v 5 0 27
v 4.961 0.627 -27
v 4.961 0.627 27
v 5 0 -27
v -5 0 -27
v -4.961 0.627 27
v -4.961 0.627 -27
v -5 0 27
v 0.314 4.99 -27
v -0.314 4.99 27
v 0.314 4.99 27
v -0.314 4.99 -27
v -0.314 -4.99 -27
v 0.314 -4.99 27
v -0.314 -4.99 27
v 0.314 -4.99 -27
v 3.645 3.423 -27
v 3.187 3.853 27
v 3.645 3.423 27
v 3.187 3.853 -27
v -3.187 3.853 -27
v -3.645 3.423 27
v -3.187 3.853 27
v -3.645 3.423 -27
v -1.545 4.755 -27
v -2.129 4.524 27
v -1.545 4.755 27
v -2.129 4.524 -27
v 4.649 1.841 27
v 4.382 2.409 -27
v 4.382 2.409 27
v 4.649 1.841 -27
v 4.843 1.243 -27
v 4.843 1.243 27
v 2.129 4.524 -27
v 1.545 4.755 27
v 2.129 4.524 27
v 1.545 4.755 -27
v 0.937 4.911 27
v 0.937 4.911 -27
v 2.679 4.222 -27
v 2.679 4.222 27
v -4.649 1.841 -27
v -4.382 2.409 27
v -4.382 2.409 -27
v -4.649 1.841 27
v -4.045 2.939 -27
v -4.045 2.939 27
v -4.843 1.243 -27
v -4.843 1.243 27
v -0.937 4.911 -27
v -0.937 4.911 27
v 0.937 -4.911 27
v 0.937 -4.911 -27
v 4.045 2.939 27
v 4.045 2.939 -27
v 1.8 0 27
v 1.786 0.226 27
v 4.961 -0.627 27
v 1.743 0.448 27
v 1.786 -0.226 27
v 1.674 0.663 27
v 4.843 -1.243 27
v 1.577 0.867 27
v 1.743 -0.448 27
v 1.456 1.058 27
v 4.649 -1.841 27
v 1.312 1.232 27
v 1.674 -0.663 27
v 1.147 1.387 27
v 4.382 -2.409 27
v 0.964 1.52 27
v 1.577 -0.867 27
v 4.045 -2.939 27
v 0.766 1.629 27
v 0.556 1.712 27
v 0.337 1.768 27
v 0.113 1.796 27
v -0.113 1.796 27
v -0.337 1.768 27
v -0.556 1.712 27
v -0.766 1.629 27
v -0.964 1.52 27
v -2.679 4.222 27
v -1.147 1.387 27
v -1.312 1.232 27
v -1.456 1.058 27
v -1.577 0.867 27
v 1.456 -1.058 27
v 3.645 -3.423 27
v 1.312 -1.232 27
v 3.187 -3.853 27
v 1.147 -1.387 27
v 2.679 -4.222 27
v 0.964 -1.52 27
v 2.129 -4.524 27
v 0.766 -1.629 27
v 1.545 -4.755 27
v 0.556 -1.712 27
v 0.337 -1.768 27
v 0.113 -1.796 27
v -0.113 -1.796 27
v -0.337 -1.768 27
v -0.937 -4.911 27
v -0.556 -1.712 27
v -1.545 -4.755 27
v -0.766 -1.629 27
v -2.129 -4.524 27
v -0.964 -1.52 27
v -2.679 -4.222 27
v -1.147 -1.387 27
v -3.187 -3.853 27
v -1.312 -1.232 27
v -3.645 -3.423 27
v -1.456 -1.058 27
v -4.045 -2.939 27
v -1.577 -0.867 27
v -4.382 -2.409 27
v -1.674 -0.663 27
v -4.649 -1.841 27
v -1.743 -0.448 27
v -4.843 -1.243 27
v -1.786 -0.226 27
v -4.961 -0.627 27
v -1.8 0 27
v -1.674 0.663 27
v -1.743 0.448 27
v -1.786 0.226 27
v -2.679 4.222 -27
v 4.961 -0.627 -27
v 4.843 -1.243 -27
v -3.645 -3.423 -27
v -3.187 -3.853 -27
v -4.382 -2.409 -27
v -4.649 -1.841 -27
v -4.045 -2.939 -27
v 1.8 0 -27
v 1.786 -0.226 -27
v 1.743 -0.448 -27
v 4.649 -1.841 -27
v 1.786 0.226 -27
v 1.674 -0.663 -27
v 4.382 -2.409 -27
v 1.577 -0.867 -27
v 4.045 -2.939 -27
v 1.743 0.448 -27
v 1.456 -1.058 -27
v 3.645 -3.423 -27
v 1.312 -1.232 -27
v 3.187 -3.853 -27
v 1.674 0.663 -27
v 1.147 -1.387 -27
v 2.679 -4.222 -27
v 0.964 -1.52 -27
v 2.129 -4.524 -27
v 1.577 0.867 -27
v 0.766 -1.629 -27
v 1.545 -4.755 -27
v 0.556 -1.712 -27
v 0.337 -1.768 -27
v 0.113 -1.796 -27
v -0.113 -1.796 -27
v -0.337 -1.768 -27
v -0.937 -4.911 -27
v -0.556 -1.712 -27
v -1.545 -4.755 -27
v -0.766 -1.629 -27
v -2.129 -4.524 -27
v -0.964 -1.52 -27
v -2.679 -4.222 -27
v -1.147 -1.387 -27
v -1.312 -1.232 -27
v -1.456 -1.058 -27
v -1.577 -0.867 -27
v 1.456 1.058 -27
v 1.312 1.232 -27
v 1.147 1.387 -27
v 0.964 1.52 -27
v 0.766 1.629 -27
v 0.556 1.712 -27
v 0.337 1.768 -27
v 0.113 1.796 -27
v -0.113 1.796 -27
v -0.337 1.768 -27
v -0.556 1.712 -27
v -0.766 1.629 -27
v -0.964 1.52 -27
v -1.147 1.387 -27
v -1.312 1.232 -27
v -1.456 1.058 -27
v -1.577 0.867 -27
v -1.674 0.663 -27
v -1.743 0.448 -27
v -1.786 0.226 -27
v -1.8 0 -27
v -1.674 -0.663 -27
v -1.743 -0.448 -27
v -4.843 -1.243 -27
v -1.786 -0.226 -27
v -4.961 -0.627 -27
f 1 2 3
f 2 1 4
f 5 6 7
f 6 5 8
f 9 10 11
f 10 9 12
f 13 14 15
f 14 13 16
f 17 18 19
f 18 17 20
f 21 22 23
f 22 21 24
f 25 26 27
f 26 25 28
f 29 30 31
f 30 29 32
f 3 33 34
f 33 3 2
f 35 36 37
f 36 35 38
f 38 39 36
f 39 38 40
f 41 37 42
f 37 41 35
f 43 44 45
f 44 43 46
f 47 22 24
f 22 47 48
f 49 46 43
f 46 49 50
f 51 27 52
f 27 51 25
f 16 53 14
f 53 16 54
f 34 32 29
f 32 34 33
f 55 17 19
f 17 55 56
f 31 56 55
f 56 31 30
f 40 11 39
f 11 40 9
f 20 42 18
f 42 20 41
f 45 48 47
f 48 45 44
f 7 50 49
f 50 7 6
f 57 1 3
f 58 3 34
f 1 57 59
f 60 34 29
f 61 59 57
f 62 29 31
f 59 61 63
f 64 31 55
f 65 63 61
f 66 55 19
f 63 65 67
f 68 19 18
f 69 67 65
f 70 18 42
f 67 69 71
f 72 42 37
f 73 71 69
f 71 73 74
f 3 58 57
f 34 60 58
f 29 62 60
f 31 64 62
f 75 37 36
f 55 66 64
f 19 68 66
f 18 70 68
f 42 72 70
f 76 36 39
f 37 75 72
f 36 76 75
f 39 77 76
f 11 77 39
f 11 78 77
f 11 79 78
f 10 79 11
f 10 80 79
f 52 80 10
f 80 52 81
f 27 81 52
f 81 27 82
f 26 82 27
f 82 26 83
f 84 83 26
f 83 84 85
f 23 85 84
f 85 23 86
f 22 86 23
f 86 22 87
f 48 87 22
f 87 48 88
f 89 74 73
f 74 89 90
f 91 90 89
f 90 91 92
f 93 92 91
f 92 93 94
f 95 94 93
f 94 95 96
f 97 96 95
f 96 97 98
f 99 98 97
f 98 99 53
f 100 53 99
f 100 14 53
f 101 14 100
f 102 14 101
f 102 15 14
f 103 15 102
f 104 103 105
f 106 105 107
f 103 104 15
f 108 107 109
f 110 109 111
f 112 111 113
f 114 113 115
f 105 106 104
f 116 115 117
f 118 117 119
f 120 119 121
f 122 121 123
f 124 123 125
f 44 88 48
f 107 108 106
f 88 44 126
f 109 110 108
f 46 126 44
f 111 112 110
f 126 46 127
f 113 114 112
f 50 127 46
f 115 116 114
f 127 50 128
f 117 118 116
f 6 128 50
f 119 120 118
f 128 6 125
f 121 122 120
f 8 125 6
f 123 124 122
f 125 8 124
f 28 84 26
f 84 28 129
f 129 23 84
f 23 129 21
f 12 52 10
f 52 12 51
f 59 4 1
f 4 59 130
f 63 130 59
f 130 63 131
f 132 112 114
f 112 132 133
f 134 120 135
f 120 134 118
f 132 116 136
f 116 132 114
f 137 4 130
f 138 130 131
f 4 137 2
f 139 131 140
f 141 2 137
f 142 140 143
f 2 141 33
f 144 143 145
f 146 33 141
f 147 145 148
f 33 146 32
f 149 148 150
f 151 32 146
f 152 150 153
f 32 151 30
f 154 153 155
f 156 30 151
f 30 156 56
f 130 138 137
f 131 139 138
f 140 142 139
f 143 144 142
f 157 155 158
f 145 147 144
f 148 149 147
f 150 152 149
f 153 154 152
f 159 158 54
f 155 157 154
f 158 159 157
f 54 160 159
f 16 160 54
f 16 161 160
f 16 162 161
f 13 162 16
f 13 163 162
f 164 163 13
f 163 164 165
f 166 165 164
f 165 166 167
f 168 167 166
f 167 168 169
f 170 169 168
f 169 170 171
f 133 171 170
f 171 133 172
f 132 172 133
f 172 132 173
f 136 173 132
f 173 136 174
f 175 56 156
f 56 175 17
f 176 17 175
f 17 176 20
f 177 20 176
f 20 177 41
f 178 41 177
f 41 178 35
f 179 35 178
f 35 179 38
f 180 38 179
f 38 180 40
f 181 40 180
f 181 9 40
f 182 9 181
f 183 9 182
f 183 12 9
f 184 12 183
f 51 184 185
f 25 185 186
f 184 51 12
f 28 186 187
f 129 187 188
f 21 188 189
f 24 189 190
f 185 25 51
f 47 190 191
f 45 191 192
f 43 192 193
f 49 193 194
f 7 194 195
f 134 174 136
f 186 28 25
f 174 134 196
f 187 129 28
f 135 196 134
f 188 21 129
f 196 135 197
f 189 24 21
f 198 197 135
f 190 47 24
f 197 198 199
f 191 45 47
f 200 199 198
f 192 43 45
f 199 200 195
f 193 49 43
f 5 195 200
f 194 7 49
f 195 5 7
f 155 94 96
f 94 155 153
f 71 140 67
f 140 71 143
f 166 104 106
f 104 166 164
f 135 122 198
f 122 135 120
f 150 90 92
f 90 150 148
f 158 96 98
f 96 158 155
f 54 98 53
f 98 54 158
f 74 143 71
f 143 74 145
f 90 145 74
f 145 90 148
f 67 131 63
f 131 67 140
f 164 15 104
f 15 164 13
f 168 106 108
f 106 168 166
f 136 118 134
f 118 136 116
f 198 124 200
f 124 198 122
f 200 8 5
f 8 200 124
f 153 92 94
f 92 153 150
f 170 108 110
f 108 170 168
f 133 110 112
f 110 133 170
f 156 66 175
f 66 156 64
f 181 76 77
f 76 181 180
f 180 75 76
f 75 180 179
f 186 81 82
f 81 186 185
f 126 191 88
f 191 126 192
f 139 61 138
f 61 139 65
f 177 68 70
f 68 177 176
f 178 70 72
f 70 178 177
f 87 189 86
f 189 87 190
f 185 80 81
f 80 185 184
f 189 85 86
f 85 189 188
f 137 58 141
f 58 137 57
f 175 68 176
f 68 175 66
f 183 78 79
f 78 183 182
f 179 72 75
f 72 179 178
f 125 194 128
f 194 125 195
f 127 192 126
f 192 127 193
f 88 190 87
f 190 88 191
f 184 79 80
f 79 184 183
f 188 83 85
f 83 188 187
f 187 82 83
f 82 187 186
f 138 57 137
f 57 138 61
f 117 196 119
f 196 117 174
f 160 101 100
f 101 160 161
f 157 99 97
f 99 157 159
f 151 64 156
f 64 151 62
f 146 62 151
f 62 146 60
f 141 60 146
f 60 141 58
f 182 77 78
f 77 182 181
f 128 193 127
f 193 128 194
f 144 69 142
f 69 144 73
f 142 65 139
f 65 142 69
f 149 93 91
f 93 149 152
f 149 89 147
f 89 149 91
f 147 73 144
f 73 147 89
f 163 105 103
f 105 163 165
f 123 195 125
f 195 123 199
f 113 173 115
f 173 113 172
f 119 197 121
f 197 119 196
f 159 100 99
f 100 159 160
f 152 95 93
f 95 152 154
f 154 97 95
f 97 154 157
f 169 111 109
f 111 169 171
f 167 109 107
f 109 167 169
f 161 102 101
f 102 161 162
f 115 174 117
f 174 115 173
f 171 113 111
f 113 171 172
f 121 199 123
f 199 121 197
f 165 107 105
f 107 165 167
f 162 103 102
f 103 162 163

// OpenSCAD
$fn = 50;


difference() {
	union() {
		translate(v = [0, 0, -27.0000000000]) {
			cylinder(h = 54, r = 5.0000000000);
		}
	}
	union() {
		translate(v = [0, 0, -100.0000000000]) {
			cylinder(h = 200, r = 1.8000000000);
		}
	}
}
